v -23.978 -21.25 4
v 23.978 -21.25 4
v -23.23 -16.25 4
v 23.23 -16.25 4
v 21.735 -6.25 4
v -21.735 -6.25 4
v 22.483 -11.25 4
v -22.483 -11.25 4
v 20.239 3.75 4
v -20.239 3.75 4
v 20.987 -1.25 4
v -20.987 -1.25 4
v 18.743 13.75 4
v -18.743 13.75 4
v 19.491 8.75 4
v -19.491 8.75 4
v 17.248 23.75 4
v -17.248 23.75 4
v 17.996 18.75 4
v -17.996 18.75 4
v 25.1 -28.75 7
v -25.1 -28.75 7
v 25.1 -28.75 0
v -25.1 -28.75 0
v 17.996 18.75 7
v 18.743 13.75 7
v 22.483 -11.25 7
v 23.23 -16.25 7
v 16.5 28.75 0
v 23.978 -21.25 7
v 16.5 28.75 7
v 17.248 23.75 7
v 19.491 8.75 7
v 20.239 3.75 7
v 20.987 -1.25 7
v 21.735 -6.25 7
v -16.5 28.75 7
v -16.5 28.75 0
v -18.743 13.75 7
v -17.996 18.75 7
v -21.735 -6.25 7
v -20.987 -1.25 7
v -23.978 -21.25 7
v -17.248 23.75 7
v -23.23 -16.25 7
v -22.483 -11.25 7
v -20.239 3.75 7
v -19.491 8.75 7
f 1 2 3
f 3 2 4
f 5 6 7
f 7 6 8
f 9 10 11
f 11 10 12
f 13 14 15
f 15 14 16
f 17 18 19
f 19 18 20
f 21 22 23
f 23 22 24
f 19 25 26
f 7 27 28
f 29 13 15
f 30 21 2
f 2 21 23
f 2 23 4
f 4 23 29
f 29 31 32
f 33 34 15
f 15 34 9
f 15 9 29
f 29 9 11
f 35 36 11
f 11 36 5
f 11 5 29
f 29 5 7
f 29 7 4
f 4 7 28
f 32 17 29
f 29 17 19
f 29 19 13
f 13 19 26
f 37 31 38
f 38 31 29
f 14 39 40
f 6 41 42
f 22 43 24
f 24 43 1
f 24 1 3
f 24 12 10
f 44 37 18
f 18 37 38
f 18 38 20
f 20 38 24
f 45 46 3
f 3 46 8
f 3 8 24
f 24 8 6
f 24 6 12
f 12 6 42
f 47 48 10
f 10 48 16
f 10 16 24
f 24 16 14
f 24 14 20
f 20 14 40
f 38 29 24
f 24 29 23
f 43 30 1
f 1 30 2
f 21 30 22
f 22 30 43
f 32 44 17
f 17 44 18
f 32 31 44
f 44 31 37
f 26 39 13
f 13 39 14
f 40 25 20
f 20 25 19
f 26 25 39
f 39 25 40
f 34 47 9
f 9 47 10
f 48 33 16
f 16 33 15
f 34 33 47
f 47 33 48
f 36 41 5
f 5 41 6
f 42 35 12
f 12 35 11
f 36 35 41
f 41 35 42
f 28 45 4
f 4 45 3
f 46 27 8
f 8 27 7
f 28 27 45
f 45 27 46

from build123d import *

# Parameters (mm, degrees)
EXTRUDE1_DEPTH = 4
EXTRUDE2_DEPTH = 3


with BuildPart() as part:
    # Sketch1 → Extrude1 (new body)
    with BuildSketch(Plane.XY):
        Polygon((-25.1, -28.75), (-16.5, 28.75), (16.5, 28.75), (25.1, -28.75), align=None)
    extrude(amount=EXTRUDE1_DEPTH)

    # Sketch2 → Extrude2 (add)
    with BuildSketch(Plane.XY.offset(4)):
        Polygon((-17.247826087, 23.75), (17.247826087, 23.75), (16.5, 28.75), (-16.5, 28.75), align=None)
        Polygon((-17.995652174, 18.75), (17.995652174, 18.75), (18.743478261, 13.75), (-18.743478261, 13.75), align=None)
        Polygon((-19.491304348, 8.75), (19.491304348, 8.75), (20.239130435, 3.75), (-20.239130435, 3.75), align=None)
        Polygon((-25.1, -28.75), (25.1, -28.75), (23.97826087, -21.25), (-23.97826087, -21.25), align=None)
        Polygon((-20.986956522, -1.25), (20.986956522, -1.25), (21.734782609, -6.25), (-21.734782609, -6.25), align=None)
        Polygon((-22.482608696, -11.25), (22.482608696, -11.25), (23.230434783, -16.25), (-23.230434783, -16.25), align=None)
    extrude(amount=EXTRUDE2_DEPTH)


solid = part.part
